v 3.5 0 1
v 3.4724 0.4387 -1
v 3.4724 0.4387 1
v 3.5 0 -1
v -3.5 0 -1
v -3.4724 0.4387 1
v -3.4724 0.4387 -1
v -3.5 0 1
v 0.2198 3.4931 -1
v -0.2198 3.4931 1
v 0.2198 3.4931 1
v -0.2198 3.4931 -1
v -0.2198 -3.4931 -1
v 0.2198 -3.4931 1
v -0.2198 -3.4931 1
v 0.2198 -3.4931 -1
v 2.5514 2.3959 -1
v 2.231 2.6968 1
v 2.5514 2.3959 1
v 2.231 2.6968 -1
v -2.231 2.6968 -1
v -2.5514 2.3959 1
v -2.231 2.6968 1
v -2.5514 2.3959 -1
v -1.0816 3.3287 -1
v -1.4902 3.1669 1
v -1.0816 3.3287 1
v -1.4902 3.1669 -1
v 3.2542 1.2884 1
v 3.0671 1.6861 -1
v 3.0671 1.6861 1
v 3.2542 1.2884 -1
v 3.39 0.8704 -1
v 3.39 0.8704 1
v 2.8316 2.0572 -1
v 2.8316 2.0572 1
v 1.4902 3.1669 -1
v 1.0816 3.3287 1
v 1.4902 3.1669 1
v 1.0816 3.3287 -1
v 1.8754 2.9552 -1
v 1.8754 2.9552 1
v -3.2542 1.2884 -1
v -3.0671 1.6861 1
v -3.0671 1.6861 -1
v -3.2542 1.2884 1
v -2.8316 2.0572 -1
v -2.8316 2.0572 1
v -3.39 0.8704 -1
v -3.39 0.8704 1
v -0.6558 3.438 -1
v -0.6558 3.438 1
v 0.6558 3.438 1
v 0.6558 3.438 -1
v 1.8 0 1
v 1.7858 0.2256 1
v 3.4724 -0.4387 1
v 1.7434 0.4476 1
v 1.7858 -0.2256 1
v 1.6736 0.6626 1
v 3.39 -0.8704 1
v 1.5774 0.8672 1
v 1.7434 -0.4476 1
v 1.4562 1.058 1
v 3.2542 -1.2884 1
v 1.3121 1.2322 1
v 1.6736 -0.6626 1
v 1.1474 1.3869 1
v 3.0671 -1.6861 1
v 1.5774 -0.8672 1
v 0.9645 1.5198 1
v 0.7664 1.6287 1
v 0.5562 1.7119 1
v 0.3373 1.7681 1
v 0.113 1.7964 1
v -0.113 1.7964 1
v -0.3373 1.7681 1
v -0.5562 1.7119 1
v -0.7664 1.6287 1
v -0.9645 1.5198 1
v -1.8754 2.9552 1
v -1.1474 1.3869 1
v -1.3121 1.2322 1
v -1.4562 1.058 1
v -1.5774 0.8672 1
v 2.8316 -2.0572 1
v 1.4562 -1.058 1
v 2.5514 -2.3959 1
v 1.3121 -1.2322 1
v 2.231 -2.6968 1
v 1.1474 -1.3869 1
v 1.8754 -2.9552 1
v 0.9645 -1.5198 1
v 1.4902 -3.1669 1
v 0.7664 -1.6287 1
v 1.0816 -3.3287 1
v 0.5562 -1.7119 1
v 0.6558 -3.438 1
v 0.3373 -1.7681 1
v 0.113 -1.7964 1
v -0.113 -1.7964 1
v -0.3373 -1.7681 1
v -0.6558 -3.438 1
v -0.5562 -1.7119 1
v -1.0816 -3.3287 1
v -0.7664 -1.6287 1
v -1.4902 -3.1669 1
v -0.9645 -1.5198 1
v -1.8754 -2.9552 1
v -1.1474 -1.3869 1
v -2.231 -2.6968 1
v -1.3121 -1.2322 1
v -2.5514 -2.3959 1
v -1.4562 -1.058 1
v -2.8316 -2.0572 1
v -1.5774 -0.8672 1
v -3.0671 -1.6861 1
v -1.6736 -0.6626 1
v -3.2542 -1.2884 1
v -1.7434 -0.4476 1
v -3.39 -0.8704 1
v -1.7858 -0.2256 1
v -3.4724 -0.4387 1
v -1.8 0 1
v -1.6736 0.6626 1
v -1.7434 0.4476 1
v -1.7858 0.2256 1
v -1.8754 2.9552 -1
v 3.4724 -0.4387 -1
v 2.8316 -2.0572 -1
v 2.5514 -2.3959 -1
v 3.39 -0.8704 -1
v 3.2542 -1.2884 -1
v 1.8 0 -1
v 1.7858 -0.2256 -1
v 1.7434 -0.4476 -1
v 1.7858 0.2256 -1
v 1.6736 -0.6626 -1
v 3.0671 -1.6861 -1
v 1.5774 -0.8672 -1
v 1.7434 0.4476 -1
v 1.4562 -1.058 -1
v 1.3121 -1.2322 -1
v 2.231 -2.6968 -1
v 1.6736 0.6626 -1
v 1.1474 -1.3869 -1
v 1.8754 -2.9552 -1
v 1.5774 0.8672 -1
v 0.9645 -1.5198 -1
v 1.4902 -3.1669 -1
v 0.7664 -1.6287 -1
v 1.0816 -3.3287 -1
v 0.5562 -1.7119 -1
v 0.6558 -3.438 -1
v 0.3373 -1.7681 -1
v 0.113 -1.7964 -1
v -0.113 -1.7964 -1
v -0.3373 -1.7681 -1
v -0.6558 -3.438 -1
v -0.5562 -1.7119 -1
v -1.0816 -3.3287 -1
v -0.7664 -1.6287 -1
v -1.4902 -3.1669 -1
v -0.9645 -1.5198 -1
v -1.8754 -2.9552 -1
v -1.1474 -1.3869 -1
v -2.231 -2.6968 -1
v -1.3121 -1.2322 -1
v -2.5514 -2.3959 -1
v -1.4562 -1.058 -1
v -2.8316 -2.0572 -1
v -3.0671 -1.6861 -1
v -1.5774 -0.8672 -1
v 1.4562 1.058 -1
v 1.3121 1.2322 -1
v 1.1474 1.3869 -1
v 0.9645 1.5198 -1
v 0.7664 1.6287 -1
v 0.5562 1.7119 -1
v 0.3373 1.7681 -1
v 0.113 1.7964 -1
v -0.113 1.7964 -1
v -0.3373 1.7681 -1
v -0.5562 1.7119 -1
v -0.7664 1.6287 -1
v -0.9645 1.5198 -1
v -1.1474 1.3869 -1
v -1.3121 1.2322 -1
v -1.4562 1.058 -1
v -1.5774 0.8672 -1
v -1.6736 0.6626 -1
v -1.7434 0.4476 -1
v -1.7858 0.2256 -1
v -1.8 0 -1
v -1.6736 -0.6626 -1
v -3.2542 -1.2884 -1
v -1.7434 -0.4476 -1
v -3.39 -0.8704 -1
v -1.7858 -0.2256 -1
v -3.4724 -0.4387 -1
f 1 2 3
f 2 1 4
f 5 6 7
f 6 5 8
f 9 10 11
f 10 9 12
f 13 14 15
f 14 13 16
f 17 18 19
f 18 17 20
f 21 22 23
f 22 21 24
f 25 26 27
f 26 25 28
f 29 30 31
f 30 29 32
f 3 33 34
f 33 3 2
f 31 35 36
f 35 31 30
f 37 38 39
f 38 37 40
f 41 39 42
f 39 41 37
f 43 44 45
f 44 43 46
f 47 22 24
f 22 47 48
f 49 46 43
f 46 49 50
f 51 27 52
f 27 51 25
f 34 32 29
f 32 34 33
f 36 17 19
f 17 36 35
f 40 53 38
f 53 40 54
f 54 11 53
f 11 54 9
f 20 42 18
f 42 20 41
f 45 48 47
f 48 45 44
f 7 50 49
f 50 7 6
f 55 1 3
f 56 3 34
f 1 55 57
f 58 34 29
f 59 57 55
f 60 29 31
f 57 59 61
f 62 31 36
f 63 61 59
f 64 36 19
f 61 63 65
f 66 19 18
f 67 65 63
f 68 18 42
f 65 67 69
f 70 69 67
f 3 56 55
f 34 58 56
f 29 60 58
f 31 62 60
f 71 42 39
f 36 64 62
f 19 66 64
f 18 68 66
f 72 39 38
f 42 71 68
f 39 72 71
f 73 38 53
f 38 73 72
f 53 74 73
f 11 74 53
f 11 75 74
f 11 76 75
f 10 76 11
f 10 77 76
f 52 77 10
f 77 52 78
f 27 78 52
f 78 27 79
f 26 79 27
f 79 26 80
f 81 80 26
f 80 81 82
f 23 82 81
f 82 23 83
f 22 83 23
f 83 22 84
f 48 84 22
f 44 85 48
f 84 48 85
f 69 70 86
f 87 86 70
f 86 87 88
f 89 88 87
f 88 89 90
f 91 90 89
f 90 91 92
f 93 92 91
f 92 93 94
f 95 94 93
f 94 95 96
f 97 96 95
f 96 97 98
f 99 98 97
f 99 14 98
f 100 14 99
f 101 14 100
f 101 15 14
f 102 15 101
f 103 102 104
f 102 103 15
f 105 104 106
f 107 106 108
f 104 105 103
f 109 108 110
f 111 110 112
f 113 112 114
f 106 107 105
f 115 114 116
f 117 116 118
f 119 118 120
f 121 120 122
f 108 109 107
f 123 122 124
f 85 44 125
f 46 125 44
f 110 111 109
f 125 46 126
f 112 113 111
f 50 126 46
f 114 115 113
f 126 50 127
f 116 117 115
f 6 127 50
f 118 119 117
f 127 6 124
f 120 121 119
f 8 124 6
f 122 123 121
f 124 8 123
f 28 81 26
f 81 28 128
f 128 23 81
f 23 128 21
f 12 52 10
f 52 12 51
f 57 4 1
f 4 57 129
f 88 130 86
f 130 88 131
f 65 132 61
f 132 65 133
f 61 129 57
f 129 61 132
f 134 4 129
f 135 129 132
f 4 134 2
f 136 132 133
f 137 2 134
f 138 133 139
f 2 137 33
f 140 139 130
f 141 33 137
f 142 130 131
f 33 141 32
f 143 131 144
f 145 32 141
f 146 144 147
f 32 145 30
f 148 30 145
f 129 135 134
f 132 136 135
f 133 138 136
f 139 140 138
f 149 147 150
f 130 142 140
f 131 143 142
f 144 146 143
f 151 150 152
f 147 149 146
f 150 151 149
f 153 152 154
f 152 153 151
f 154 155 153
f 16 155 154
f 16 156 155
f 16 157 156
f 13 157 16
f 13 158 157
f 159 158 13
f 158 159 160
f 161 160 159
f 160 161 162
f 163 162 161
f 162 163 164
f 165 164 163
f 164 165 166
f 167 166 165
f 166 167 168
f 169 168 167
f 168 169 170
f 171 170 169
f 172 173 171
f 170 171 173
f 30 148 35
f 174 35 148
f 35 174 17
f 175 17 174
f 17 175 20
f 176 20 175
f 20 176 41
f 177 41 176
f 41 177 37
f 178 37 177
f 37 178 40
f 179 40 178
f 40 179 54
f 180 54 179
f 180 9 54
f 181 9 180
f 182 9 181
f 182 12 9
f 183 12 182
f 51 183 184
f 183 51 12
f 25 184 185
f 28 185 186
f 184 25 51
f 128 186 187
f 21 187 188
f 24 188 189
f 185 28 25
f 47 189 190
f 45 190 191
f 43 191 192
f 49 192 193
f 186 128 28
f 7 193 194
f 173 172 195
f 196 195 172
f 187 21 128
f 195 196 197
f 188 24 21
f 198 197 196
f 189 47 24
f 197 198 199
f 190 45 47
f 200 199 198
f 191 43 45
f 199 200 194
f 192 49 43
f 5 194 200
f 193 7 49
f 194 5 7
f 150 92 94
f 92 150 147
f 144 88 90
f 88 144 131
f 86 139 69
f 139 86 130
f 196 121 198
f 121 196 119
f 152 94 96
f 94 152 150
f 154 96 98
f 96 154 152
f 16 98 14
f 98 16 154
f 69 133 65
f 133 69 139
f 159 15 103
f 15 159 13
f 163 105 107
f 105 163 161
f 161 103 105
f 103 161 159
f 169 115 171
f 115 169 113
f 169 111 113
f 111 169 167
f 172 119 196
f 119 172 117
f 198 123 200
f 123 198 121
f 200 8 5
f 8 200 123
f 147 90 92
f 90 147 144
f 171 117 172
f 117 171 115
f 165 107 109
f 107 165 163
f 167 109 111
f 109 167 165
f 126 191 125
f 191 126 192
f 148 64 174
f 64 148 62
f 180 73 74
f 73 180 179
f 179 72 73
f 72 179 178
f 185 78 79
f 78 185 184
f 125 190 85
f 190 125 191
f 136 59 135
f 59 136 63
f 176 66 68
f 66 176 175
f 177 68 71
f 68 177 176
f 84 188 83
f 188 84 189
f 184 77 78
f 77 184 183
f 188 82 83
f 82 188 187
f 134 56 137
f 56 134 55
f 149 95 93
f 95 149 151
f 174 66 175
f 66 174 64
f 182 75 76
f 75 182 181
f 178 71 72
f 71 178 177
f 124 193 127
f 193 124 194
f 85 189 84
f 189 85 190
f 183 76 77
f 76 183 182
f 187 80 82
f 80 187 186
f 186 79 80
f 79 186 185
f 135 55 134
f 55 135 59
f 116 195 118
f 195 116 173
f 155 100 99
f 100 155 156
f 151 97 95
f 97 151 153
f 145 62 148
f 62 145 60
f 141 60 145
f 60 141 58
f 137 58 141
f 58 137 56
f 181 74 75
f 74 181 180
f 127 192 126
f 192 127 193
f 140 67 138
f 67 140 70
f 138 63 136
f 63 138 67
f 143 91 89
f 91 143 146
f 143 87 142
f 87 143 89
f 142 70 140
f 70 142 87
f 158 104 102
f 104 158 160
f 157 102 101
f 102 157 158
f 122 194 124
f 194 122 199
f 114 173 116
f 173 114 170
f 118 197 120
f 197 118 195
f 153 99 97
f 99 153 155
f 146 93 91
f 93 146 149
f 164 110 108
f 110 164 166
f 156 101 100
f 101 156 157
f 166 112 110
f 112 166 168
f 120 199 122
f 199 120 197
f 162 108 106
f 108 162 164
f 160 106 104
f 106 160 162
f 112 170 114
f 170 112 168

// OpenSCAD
$fn = 50;


difference() {
	union() {
		translate(v = [0, 0, -1.0000000000]) {
			cylinder(h = 2, r = 3.5000000000);
		}
	}
	union() {
		translate(v = [0, 0, -100.0000000000]) {
			cylinder(h = 200, r = 1.8000000000);
		}
	}
}
